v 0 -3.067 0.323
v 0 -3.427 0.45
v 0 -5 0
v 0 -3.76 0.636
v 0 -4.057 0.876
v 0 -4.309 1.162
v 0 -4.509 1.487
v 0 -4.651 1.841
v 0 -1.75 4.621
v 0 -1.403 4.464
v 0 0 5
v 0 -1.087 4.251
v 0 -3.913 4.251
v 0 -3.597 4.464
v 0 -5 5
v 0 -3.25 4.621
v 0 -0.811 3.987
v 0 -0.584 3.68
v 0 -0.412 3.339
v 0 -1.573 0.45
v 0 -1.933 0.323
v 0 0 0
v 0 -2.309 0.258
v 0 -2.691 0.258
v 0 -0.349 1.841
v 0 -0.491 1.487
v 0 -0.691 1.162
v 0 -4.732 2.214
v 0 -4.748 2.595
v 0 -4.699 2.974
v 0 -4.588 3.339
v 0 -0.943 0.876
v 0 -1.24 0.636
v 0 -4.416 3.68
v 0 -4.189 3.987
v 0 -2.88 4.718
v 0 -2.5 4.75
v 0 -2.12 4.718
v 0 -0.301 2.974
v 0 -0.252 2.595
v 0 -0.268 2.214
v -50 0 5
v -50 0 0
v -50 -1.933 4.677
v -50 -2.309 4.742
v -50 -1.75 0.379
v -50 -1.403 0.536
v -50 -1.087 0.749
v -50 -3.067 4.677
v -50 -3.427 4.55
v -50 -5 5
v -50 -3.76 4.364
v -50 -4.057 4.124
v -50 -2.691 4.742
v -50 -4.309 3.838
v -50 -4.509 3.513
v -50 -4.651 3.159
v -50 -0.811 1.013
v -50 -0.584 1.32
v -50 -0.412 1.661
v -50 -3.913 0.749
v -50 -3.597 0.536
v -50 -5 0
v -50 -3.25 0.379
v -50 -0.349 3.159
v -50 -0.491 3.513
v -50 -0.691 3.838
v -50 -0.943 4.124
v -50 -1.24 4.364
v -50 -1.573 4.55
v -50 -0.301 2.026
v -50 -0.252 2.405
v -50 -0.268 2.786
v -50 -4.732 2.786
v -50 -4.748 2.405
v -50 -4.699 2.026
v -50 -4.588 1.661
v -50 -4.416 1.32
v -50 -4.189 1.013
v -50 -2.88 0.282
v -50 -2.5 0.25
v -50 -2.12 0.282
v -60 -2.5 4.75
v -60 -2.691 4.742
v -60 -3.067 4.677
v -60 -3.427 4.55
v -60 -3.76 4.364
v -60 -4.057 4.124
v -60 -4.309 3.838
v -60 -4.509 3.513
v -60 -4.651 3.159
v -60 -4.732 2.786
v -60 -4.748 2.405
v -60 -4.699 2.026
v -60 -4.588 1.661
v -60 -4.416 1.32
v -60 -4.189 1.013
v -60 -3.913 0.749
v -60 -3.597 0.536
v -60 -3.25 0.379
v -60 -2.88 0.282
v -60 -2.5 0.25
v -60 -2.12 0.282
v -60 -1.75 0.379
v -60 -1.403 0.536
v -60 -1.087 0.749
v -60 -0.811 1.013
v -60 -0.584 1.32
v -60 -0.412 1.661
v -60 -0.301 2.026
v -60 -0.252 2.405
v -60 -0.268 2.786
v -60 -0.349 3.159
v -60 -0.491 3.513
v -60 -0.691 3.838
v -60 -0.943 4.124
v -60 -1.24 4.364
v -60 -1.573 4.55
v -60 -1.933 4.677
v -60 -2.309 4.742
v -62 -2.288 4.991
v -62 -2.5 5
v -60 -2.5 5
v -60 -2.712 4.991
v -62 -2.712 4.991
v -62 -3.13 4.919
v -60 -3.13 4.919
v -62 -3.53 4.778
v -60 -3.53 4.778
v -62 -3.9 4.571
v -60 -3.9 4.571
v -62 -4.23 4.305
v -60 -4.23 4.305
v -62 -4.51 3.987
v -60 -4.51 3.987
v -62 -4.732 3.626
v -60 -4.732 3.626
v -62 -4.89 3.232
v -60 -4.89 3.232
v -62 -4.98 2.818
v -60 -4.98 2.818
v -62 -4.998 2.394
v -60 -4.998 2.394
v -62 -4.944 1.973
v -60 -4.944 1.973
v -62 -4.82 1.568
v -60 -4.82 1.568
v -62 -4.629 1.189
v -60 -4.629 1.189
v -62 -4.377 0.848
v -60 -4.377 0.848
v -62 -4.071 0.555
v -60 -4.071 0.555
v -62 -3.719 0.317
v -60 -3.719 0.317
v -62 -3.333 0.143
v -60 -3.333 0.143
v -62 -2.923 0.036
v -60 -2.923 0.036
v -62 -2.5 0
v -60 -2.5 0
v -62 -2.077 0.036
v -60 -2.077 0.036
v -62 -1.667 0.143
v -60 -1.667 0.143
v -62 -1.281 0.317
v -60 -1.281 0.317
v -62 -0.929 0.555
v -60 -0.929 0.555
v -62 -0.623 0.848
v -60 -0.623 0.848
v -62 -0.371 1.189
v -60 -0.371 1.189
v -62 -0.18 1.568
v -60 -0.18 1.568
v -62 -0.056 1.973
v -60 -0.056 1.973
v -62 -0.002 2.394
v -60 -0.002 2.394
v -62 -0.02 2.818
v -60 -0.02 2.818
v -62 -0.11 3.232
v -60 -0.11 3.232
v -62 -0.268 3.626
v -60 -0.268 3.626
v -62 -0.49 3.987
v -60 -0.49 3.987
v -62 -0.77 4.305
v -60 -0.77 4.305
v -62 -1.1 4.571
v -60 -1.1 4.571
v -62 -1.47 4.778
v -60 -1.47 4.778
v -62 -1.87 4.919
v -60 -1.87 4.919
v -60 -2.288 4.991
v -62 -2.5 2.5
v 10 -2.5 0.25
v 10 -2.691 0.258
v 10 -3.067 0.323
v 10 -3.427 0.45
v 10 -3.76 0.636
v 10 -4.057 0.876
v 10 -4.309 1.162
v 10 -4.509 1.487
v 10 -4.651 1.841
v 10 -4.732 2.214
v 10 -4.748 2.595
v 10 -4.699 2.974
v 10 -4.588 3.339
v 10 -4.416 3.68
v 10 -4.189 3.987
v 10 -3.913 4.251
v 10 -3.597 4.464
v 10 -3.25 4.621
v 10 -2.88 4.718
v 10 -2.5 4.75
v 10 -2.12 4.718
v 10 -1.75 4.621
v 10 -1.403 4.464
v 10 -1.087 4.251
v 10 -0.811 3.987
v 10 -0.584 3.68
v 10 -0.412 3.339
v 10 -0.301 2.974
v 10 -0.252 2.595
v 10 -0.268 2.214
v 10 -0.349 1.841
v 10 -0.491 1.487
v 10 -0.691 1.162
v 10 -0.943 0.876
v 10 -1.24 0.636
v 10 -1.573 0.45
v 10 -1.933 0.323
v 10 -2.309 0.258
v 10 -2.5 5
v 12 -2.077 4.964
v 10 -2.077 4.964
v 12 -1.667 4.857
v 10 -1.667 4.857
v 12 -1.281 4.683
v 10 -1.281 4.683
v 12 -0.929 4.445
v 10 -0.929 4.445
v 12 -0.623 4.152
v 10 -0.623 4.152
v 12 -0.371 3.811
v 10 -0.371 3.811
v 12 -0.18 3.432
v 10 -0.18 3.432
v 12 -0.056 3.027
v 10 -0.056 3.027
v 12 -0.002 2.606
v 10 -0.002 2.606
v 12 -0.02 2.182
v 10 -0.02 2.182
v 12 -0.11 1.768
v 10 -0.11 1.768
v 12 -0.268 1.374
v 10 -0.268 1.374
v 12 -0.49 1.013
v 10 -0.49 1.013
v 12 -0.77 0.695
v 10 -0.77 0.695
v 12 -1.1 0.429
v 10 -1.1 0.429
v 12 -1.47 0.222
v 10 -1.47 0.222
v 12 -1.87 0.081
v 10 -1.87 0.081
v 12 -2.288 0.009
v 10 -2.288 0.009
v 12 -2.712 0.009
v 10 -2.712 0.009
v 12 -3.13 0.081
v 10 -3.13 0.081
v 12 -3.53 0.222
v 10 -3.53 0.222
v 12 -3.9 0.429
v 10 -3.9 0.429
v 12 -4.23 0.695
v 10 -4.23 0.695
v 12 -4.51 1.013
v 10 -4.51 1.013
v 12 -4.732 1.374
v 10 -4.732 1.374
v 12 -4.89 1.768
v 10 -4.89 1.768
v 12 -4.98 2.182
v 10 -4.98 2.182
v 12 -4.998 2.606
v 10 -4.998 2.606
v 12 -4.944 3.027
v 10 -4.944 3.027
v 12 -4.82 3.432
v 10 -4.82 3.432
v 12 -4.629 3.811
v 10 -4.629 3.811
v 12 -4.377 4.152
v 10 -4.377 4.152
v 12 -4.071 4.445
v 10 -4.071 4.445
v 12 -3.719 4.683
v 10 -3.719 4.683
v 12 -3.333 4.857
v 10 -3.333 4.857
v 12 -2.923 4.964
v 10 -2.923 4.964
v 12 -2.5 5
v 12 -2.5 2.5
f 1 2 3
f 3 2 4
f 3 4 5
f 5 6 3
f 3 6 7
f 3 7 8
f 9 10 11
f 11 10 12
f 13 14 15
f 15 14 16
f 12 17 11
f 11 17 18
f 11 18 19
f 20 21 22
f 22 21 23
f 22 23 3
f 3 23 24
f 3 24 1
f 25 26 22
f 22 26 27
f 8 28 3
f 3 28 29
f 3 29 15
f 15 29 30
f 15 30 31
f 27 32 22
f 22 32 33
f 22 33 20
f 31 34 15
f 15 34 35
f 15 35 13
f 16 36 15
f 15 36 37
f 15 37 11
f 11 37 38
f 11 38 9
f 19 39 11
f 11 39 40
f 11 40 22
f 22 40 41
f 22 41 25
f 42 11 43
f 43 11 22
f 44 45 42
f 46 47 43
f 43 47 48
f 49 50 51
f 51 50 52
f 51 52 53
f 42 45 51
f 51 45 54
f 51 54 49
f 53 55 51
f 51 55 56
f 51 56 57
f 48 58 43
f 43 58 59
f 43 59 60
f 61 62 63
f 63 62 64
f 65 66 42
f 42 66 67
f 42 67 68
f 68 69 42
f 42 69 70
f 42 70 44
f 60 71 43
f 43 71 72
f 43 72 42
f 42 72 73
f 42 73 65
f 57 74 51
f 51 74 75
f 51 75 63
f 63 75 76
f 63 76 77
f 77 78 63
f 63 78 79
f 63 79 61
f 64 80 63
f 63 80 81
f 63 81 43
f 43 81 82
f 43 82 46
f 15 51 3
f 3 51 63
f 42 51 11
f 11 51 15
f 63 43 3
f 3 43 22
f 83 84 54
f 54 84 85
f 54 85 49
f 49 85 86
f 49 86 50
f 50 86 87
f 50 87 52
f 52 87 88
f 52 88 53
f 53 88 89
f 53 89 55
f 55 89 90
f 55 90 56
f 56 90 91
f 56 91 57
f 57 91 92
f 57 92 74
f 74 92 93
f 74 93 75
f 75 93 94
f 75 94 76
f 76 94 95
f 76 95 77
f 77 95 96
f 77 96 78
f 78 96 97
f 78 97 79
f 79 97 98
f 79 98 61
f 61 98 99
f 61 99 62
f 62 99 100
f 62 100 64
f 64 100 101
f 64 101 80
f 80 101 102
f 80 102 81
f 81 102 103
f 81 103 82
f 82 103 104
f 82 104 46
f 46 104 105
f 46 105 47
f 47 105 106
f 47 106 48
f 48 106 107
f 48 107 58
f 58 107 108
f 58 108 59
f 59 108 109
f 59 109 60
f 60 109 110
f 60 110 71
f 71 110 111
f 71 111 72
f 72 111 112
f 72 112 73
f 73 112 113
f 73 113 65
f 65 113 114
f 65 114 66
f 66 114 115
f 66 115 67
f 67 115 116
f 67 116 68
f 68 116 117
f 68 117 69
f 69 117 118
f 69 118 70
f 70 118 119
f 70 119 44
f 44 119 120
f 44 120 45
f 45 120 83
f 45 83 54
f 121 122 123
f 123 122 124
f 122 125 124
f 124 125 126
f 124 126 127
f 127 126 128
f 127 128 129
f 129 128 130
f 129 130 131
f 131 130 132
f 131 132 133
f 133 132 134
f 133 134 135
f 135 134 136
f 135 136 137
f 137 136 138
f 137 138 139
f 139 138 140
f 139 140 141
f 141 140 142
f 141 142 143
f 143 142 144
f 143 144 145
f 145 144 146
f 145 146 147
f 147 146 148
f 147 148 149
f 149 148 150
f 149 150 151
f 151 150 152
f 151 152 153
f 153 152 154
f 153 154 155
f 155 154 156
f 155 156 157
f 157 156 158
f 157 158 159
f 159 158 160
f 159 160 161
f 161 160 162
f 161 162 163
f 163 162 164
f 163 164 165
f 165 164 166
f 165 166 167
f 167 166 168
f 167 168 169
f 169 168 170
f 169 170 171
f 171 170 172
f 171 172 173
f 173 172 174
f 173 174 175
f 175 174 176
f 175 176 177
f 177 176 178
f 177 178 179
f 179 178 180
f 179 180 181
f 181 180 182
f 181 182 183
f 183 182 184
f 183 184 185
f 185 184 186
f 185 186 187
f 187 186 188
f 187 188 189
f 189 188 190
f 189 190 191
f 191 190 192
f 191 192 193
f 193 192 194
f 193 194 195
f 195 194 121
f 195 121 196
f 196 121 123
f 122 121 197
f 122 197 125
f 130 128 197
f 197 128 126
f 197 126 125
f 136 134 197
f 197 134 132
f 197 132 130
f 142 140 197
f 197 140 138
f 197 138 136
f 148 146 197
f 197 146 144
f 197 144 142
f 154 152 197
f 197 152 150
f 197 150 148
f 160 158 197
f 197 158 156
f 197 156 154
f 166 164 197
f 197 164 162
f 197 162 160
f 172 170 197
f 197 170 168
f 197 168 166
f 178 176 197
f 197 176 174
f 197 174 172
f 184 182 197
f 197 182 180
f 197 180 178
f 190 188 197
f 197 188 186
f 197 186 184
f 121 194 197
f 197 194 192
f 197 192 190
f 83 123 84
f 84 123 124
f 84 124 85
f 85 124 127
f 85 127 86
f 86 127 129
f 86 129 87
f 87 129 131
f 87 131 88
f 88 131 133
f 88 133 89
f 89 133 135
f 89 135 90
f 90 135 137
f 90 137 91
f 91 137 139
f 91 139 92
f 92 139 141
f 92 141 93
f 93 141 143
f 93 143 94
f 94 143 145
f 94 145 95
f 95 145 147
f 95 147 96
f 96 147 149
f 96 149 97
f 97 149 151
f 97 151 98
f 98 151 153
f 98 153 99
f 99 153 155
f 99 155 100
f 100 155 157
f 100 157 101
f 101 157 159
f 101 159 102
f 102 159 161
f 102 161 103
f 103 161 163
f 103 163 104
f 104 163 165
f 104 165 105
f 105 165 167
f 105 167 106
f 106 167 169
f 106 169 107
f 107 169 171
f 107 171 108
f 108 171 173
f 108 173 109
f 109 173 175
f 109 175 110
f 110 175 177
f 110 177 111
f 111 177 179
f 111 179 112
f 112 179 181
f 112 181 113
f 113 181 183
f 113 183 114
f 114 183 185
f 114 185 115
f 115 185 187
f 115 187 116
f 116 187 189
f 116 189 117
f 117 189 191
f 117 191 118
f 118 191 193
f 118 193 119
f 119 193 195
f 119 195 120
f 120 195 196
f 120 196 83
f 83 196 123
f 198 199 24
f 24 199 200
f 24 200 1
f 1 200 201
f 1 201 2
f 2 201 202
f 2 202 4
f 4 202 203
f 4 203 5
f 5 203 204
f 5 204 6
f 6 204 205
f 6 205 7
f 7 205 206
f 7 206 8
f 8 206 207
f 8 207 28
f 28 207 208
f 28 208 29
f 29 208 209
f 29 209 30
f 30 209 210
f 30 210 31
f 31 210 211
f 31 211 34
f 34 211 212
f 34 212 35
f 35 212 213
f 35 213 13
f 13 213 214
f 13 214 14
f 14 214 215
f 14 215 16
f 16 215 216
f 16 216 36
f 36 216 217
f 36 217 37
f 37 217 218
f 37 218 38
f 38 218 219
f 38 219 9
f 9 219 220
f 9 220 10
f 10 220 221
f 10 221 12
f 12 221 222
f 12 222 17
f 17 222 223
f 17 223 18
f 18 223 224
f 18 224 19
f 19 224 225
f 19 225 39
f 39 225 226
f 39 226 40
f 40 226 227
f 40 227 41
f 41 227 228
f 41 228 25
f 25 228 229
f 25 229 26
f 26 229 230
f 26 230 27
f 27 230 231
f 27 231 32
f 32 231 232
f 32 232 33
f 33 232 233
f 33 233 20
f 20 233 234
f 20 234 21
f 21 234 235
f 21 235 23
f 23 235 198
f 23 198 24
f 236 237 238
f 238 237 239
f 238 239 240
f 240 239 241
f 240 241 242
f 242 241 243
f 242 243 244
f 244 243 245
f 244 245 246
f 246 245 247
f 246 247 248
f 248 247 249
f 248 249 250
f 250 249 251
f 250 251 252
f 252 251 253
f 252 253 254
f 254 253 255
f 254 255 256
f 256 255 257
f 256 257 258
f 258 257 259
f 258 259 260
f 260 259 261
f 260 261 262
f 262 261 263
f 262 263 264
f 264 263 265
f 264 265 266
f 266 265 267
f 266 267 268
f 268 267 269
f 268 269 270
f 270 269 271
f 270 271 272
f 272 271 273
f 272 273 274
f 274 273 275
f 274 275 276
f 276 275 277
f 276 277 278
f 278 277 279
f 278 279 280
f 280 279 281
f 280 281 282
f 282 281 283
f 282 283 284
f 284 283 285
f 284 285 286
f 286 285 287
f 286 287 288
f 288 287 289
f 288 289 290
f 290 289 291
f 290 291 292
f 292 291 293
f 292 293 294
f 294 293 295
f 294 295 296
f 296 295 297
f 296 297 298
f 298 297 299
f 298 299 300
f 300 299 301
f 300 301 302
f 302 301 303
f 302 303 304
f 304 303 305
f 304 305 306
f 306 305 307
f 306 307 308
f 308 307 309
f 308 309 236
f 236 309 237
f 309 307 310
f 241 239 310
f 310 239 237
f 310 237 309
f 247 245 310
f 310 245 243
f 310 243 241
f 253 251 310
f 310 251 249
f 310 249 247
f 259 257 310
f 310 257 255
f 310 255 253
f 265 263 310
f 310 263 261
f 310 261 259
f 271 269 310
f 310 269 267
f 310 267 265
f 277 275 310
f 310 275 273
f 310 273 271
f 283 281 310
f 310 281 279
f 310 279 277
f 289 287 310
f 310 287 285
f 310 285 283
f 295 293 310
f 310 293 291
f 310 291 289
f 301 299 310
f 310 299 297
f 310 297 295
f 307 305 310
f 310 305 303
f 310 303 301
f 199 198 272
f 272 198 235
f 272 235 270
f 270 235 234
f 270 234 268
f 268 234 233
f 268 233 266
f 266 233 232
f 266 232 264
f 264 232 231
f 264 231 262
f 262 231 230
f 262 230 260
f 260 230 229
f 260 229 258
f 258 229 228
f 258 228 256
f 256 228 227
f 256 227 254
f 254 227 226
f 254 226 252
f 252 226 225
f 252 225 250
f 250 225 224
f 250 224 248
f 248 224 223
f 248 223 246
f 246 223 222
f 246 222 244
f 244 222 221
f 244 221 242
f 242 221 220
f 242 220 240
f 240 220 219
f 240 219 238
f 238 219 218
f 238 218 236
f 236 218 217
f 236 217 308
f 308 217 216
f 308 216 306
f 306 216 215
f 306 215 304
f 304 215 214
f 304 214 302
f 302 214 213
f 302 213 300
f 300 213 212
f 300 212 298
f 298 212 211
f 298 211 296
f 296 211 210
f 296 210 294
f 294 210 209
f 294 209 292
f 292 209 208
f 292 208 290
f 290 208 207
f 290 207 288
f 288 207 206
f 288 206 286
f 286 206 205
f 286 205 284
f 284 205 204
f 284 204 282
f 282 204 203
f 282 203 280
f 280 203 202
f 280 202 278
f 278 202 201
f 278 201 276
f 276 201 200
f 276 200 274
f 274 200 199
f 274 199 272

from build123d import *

# Parameters (mm, degrees)
ESBO_O1_W                = 50
ESBO_O1_H                = 5
RESSALTO_EXTRUS_O1_DEPTH = 5
ESBO_O2_R                = 2.25
RESSALTO_EXTRUS_O2_DEPTH = 10
ESBO_O3_R                = 2.5
RESSALTO_EXTRUS_O3_DEPTH = 2


with BuildPart() as part:
    # Esboço1 → Ressalto-extrusão1 (new body)
    with BuildSketch(Plane.XY):
        with Locations((-25, -2.5)):
            Rectangle(ESBO_O1_W, ESBO_O1_H)
    extrude(amount=RESSALTO_EXTRUS_O1_DEPTH)

    # Esboço2 → Ressalto-extrusão2 (add)
    with BuildSketch(Plane.ZY.offset(50)):
        with Locations(Location((2.5, -2.5, 0), (0, 0, 180))):
            Circle(ESBO_O2_R)
    ressalto_extrus_o2 = extrude(amount=RESSALTO_EXTRUS_O2_DEPTH)

    # Esboço3 → Ressalto-extrusão3 (add)
    with BuildSketch(Plane.ZY.offset(60)):
        with Locations((2.5, -2.5)):
            Circle(ESBO_O3_R)
    ressalto_extrus_o3 = extrude(amount=RESSALTO_EXTRUS_O3_DEPTH)

    # Espelhar1: Ressalto-extrusão2, Ressalto-extrusão3 across plane
    add(ressalto_extrus_o2.mirror(Plane.ZY.offset(25)))
    add(ressalto_extrus_o3.mirror(Plane.ZY.offset(25)))


solid = part.part
